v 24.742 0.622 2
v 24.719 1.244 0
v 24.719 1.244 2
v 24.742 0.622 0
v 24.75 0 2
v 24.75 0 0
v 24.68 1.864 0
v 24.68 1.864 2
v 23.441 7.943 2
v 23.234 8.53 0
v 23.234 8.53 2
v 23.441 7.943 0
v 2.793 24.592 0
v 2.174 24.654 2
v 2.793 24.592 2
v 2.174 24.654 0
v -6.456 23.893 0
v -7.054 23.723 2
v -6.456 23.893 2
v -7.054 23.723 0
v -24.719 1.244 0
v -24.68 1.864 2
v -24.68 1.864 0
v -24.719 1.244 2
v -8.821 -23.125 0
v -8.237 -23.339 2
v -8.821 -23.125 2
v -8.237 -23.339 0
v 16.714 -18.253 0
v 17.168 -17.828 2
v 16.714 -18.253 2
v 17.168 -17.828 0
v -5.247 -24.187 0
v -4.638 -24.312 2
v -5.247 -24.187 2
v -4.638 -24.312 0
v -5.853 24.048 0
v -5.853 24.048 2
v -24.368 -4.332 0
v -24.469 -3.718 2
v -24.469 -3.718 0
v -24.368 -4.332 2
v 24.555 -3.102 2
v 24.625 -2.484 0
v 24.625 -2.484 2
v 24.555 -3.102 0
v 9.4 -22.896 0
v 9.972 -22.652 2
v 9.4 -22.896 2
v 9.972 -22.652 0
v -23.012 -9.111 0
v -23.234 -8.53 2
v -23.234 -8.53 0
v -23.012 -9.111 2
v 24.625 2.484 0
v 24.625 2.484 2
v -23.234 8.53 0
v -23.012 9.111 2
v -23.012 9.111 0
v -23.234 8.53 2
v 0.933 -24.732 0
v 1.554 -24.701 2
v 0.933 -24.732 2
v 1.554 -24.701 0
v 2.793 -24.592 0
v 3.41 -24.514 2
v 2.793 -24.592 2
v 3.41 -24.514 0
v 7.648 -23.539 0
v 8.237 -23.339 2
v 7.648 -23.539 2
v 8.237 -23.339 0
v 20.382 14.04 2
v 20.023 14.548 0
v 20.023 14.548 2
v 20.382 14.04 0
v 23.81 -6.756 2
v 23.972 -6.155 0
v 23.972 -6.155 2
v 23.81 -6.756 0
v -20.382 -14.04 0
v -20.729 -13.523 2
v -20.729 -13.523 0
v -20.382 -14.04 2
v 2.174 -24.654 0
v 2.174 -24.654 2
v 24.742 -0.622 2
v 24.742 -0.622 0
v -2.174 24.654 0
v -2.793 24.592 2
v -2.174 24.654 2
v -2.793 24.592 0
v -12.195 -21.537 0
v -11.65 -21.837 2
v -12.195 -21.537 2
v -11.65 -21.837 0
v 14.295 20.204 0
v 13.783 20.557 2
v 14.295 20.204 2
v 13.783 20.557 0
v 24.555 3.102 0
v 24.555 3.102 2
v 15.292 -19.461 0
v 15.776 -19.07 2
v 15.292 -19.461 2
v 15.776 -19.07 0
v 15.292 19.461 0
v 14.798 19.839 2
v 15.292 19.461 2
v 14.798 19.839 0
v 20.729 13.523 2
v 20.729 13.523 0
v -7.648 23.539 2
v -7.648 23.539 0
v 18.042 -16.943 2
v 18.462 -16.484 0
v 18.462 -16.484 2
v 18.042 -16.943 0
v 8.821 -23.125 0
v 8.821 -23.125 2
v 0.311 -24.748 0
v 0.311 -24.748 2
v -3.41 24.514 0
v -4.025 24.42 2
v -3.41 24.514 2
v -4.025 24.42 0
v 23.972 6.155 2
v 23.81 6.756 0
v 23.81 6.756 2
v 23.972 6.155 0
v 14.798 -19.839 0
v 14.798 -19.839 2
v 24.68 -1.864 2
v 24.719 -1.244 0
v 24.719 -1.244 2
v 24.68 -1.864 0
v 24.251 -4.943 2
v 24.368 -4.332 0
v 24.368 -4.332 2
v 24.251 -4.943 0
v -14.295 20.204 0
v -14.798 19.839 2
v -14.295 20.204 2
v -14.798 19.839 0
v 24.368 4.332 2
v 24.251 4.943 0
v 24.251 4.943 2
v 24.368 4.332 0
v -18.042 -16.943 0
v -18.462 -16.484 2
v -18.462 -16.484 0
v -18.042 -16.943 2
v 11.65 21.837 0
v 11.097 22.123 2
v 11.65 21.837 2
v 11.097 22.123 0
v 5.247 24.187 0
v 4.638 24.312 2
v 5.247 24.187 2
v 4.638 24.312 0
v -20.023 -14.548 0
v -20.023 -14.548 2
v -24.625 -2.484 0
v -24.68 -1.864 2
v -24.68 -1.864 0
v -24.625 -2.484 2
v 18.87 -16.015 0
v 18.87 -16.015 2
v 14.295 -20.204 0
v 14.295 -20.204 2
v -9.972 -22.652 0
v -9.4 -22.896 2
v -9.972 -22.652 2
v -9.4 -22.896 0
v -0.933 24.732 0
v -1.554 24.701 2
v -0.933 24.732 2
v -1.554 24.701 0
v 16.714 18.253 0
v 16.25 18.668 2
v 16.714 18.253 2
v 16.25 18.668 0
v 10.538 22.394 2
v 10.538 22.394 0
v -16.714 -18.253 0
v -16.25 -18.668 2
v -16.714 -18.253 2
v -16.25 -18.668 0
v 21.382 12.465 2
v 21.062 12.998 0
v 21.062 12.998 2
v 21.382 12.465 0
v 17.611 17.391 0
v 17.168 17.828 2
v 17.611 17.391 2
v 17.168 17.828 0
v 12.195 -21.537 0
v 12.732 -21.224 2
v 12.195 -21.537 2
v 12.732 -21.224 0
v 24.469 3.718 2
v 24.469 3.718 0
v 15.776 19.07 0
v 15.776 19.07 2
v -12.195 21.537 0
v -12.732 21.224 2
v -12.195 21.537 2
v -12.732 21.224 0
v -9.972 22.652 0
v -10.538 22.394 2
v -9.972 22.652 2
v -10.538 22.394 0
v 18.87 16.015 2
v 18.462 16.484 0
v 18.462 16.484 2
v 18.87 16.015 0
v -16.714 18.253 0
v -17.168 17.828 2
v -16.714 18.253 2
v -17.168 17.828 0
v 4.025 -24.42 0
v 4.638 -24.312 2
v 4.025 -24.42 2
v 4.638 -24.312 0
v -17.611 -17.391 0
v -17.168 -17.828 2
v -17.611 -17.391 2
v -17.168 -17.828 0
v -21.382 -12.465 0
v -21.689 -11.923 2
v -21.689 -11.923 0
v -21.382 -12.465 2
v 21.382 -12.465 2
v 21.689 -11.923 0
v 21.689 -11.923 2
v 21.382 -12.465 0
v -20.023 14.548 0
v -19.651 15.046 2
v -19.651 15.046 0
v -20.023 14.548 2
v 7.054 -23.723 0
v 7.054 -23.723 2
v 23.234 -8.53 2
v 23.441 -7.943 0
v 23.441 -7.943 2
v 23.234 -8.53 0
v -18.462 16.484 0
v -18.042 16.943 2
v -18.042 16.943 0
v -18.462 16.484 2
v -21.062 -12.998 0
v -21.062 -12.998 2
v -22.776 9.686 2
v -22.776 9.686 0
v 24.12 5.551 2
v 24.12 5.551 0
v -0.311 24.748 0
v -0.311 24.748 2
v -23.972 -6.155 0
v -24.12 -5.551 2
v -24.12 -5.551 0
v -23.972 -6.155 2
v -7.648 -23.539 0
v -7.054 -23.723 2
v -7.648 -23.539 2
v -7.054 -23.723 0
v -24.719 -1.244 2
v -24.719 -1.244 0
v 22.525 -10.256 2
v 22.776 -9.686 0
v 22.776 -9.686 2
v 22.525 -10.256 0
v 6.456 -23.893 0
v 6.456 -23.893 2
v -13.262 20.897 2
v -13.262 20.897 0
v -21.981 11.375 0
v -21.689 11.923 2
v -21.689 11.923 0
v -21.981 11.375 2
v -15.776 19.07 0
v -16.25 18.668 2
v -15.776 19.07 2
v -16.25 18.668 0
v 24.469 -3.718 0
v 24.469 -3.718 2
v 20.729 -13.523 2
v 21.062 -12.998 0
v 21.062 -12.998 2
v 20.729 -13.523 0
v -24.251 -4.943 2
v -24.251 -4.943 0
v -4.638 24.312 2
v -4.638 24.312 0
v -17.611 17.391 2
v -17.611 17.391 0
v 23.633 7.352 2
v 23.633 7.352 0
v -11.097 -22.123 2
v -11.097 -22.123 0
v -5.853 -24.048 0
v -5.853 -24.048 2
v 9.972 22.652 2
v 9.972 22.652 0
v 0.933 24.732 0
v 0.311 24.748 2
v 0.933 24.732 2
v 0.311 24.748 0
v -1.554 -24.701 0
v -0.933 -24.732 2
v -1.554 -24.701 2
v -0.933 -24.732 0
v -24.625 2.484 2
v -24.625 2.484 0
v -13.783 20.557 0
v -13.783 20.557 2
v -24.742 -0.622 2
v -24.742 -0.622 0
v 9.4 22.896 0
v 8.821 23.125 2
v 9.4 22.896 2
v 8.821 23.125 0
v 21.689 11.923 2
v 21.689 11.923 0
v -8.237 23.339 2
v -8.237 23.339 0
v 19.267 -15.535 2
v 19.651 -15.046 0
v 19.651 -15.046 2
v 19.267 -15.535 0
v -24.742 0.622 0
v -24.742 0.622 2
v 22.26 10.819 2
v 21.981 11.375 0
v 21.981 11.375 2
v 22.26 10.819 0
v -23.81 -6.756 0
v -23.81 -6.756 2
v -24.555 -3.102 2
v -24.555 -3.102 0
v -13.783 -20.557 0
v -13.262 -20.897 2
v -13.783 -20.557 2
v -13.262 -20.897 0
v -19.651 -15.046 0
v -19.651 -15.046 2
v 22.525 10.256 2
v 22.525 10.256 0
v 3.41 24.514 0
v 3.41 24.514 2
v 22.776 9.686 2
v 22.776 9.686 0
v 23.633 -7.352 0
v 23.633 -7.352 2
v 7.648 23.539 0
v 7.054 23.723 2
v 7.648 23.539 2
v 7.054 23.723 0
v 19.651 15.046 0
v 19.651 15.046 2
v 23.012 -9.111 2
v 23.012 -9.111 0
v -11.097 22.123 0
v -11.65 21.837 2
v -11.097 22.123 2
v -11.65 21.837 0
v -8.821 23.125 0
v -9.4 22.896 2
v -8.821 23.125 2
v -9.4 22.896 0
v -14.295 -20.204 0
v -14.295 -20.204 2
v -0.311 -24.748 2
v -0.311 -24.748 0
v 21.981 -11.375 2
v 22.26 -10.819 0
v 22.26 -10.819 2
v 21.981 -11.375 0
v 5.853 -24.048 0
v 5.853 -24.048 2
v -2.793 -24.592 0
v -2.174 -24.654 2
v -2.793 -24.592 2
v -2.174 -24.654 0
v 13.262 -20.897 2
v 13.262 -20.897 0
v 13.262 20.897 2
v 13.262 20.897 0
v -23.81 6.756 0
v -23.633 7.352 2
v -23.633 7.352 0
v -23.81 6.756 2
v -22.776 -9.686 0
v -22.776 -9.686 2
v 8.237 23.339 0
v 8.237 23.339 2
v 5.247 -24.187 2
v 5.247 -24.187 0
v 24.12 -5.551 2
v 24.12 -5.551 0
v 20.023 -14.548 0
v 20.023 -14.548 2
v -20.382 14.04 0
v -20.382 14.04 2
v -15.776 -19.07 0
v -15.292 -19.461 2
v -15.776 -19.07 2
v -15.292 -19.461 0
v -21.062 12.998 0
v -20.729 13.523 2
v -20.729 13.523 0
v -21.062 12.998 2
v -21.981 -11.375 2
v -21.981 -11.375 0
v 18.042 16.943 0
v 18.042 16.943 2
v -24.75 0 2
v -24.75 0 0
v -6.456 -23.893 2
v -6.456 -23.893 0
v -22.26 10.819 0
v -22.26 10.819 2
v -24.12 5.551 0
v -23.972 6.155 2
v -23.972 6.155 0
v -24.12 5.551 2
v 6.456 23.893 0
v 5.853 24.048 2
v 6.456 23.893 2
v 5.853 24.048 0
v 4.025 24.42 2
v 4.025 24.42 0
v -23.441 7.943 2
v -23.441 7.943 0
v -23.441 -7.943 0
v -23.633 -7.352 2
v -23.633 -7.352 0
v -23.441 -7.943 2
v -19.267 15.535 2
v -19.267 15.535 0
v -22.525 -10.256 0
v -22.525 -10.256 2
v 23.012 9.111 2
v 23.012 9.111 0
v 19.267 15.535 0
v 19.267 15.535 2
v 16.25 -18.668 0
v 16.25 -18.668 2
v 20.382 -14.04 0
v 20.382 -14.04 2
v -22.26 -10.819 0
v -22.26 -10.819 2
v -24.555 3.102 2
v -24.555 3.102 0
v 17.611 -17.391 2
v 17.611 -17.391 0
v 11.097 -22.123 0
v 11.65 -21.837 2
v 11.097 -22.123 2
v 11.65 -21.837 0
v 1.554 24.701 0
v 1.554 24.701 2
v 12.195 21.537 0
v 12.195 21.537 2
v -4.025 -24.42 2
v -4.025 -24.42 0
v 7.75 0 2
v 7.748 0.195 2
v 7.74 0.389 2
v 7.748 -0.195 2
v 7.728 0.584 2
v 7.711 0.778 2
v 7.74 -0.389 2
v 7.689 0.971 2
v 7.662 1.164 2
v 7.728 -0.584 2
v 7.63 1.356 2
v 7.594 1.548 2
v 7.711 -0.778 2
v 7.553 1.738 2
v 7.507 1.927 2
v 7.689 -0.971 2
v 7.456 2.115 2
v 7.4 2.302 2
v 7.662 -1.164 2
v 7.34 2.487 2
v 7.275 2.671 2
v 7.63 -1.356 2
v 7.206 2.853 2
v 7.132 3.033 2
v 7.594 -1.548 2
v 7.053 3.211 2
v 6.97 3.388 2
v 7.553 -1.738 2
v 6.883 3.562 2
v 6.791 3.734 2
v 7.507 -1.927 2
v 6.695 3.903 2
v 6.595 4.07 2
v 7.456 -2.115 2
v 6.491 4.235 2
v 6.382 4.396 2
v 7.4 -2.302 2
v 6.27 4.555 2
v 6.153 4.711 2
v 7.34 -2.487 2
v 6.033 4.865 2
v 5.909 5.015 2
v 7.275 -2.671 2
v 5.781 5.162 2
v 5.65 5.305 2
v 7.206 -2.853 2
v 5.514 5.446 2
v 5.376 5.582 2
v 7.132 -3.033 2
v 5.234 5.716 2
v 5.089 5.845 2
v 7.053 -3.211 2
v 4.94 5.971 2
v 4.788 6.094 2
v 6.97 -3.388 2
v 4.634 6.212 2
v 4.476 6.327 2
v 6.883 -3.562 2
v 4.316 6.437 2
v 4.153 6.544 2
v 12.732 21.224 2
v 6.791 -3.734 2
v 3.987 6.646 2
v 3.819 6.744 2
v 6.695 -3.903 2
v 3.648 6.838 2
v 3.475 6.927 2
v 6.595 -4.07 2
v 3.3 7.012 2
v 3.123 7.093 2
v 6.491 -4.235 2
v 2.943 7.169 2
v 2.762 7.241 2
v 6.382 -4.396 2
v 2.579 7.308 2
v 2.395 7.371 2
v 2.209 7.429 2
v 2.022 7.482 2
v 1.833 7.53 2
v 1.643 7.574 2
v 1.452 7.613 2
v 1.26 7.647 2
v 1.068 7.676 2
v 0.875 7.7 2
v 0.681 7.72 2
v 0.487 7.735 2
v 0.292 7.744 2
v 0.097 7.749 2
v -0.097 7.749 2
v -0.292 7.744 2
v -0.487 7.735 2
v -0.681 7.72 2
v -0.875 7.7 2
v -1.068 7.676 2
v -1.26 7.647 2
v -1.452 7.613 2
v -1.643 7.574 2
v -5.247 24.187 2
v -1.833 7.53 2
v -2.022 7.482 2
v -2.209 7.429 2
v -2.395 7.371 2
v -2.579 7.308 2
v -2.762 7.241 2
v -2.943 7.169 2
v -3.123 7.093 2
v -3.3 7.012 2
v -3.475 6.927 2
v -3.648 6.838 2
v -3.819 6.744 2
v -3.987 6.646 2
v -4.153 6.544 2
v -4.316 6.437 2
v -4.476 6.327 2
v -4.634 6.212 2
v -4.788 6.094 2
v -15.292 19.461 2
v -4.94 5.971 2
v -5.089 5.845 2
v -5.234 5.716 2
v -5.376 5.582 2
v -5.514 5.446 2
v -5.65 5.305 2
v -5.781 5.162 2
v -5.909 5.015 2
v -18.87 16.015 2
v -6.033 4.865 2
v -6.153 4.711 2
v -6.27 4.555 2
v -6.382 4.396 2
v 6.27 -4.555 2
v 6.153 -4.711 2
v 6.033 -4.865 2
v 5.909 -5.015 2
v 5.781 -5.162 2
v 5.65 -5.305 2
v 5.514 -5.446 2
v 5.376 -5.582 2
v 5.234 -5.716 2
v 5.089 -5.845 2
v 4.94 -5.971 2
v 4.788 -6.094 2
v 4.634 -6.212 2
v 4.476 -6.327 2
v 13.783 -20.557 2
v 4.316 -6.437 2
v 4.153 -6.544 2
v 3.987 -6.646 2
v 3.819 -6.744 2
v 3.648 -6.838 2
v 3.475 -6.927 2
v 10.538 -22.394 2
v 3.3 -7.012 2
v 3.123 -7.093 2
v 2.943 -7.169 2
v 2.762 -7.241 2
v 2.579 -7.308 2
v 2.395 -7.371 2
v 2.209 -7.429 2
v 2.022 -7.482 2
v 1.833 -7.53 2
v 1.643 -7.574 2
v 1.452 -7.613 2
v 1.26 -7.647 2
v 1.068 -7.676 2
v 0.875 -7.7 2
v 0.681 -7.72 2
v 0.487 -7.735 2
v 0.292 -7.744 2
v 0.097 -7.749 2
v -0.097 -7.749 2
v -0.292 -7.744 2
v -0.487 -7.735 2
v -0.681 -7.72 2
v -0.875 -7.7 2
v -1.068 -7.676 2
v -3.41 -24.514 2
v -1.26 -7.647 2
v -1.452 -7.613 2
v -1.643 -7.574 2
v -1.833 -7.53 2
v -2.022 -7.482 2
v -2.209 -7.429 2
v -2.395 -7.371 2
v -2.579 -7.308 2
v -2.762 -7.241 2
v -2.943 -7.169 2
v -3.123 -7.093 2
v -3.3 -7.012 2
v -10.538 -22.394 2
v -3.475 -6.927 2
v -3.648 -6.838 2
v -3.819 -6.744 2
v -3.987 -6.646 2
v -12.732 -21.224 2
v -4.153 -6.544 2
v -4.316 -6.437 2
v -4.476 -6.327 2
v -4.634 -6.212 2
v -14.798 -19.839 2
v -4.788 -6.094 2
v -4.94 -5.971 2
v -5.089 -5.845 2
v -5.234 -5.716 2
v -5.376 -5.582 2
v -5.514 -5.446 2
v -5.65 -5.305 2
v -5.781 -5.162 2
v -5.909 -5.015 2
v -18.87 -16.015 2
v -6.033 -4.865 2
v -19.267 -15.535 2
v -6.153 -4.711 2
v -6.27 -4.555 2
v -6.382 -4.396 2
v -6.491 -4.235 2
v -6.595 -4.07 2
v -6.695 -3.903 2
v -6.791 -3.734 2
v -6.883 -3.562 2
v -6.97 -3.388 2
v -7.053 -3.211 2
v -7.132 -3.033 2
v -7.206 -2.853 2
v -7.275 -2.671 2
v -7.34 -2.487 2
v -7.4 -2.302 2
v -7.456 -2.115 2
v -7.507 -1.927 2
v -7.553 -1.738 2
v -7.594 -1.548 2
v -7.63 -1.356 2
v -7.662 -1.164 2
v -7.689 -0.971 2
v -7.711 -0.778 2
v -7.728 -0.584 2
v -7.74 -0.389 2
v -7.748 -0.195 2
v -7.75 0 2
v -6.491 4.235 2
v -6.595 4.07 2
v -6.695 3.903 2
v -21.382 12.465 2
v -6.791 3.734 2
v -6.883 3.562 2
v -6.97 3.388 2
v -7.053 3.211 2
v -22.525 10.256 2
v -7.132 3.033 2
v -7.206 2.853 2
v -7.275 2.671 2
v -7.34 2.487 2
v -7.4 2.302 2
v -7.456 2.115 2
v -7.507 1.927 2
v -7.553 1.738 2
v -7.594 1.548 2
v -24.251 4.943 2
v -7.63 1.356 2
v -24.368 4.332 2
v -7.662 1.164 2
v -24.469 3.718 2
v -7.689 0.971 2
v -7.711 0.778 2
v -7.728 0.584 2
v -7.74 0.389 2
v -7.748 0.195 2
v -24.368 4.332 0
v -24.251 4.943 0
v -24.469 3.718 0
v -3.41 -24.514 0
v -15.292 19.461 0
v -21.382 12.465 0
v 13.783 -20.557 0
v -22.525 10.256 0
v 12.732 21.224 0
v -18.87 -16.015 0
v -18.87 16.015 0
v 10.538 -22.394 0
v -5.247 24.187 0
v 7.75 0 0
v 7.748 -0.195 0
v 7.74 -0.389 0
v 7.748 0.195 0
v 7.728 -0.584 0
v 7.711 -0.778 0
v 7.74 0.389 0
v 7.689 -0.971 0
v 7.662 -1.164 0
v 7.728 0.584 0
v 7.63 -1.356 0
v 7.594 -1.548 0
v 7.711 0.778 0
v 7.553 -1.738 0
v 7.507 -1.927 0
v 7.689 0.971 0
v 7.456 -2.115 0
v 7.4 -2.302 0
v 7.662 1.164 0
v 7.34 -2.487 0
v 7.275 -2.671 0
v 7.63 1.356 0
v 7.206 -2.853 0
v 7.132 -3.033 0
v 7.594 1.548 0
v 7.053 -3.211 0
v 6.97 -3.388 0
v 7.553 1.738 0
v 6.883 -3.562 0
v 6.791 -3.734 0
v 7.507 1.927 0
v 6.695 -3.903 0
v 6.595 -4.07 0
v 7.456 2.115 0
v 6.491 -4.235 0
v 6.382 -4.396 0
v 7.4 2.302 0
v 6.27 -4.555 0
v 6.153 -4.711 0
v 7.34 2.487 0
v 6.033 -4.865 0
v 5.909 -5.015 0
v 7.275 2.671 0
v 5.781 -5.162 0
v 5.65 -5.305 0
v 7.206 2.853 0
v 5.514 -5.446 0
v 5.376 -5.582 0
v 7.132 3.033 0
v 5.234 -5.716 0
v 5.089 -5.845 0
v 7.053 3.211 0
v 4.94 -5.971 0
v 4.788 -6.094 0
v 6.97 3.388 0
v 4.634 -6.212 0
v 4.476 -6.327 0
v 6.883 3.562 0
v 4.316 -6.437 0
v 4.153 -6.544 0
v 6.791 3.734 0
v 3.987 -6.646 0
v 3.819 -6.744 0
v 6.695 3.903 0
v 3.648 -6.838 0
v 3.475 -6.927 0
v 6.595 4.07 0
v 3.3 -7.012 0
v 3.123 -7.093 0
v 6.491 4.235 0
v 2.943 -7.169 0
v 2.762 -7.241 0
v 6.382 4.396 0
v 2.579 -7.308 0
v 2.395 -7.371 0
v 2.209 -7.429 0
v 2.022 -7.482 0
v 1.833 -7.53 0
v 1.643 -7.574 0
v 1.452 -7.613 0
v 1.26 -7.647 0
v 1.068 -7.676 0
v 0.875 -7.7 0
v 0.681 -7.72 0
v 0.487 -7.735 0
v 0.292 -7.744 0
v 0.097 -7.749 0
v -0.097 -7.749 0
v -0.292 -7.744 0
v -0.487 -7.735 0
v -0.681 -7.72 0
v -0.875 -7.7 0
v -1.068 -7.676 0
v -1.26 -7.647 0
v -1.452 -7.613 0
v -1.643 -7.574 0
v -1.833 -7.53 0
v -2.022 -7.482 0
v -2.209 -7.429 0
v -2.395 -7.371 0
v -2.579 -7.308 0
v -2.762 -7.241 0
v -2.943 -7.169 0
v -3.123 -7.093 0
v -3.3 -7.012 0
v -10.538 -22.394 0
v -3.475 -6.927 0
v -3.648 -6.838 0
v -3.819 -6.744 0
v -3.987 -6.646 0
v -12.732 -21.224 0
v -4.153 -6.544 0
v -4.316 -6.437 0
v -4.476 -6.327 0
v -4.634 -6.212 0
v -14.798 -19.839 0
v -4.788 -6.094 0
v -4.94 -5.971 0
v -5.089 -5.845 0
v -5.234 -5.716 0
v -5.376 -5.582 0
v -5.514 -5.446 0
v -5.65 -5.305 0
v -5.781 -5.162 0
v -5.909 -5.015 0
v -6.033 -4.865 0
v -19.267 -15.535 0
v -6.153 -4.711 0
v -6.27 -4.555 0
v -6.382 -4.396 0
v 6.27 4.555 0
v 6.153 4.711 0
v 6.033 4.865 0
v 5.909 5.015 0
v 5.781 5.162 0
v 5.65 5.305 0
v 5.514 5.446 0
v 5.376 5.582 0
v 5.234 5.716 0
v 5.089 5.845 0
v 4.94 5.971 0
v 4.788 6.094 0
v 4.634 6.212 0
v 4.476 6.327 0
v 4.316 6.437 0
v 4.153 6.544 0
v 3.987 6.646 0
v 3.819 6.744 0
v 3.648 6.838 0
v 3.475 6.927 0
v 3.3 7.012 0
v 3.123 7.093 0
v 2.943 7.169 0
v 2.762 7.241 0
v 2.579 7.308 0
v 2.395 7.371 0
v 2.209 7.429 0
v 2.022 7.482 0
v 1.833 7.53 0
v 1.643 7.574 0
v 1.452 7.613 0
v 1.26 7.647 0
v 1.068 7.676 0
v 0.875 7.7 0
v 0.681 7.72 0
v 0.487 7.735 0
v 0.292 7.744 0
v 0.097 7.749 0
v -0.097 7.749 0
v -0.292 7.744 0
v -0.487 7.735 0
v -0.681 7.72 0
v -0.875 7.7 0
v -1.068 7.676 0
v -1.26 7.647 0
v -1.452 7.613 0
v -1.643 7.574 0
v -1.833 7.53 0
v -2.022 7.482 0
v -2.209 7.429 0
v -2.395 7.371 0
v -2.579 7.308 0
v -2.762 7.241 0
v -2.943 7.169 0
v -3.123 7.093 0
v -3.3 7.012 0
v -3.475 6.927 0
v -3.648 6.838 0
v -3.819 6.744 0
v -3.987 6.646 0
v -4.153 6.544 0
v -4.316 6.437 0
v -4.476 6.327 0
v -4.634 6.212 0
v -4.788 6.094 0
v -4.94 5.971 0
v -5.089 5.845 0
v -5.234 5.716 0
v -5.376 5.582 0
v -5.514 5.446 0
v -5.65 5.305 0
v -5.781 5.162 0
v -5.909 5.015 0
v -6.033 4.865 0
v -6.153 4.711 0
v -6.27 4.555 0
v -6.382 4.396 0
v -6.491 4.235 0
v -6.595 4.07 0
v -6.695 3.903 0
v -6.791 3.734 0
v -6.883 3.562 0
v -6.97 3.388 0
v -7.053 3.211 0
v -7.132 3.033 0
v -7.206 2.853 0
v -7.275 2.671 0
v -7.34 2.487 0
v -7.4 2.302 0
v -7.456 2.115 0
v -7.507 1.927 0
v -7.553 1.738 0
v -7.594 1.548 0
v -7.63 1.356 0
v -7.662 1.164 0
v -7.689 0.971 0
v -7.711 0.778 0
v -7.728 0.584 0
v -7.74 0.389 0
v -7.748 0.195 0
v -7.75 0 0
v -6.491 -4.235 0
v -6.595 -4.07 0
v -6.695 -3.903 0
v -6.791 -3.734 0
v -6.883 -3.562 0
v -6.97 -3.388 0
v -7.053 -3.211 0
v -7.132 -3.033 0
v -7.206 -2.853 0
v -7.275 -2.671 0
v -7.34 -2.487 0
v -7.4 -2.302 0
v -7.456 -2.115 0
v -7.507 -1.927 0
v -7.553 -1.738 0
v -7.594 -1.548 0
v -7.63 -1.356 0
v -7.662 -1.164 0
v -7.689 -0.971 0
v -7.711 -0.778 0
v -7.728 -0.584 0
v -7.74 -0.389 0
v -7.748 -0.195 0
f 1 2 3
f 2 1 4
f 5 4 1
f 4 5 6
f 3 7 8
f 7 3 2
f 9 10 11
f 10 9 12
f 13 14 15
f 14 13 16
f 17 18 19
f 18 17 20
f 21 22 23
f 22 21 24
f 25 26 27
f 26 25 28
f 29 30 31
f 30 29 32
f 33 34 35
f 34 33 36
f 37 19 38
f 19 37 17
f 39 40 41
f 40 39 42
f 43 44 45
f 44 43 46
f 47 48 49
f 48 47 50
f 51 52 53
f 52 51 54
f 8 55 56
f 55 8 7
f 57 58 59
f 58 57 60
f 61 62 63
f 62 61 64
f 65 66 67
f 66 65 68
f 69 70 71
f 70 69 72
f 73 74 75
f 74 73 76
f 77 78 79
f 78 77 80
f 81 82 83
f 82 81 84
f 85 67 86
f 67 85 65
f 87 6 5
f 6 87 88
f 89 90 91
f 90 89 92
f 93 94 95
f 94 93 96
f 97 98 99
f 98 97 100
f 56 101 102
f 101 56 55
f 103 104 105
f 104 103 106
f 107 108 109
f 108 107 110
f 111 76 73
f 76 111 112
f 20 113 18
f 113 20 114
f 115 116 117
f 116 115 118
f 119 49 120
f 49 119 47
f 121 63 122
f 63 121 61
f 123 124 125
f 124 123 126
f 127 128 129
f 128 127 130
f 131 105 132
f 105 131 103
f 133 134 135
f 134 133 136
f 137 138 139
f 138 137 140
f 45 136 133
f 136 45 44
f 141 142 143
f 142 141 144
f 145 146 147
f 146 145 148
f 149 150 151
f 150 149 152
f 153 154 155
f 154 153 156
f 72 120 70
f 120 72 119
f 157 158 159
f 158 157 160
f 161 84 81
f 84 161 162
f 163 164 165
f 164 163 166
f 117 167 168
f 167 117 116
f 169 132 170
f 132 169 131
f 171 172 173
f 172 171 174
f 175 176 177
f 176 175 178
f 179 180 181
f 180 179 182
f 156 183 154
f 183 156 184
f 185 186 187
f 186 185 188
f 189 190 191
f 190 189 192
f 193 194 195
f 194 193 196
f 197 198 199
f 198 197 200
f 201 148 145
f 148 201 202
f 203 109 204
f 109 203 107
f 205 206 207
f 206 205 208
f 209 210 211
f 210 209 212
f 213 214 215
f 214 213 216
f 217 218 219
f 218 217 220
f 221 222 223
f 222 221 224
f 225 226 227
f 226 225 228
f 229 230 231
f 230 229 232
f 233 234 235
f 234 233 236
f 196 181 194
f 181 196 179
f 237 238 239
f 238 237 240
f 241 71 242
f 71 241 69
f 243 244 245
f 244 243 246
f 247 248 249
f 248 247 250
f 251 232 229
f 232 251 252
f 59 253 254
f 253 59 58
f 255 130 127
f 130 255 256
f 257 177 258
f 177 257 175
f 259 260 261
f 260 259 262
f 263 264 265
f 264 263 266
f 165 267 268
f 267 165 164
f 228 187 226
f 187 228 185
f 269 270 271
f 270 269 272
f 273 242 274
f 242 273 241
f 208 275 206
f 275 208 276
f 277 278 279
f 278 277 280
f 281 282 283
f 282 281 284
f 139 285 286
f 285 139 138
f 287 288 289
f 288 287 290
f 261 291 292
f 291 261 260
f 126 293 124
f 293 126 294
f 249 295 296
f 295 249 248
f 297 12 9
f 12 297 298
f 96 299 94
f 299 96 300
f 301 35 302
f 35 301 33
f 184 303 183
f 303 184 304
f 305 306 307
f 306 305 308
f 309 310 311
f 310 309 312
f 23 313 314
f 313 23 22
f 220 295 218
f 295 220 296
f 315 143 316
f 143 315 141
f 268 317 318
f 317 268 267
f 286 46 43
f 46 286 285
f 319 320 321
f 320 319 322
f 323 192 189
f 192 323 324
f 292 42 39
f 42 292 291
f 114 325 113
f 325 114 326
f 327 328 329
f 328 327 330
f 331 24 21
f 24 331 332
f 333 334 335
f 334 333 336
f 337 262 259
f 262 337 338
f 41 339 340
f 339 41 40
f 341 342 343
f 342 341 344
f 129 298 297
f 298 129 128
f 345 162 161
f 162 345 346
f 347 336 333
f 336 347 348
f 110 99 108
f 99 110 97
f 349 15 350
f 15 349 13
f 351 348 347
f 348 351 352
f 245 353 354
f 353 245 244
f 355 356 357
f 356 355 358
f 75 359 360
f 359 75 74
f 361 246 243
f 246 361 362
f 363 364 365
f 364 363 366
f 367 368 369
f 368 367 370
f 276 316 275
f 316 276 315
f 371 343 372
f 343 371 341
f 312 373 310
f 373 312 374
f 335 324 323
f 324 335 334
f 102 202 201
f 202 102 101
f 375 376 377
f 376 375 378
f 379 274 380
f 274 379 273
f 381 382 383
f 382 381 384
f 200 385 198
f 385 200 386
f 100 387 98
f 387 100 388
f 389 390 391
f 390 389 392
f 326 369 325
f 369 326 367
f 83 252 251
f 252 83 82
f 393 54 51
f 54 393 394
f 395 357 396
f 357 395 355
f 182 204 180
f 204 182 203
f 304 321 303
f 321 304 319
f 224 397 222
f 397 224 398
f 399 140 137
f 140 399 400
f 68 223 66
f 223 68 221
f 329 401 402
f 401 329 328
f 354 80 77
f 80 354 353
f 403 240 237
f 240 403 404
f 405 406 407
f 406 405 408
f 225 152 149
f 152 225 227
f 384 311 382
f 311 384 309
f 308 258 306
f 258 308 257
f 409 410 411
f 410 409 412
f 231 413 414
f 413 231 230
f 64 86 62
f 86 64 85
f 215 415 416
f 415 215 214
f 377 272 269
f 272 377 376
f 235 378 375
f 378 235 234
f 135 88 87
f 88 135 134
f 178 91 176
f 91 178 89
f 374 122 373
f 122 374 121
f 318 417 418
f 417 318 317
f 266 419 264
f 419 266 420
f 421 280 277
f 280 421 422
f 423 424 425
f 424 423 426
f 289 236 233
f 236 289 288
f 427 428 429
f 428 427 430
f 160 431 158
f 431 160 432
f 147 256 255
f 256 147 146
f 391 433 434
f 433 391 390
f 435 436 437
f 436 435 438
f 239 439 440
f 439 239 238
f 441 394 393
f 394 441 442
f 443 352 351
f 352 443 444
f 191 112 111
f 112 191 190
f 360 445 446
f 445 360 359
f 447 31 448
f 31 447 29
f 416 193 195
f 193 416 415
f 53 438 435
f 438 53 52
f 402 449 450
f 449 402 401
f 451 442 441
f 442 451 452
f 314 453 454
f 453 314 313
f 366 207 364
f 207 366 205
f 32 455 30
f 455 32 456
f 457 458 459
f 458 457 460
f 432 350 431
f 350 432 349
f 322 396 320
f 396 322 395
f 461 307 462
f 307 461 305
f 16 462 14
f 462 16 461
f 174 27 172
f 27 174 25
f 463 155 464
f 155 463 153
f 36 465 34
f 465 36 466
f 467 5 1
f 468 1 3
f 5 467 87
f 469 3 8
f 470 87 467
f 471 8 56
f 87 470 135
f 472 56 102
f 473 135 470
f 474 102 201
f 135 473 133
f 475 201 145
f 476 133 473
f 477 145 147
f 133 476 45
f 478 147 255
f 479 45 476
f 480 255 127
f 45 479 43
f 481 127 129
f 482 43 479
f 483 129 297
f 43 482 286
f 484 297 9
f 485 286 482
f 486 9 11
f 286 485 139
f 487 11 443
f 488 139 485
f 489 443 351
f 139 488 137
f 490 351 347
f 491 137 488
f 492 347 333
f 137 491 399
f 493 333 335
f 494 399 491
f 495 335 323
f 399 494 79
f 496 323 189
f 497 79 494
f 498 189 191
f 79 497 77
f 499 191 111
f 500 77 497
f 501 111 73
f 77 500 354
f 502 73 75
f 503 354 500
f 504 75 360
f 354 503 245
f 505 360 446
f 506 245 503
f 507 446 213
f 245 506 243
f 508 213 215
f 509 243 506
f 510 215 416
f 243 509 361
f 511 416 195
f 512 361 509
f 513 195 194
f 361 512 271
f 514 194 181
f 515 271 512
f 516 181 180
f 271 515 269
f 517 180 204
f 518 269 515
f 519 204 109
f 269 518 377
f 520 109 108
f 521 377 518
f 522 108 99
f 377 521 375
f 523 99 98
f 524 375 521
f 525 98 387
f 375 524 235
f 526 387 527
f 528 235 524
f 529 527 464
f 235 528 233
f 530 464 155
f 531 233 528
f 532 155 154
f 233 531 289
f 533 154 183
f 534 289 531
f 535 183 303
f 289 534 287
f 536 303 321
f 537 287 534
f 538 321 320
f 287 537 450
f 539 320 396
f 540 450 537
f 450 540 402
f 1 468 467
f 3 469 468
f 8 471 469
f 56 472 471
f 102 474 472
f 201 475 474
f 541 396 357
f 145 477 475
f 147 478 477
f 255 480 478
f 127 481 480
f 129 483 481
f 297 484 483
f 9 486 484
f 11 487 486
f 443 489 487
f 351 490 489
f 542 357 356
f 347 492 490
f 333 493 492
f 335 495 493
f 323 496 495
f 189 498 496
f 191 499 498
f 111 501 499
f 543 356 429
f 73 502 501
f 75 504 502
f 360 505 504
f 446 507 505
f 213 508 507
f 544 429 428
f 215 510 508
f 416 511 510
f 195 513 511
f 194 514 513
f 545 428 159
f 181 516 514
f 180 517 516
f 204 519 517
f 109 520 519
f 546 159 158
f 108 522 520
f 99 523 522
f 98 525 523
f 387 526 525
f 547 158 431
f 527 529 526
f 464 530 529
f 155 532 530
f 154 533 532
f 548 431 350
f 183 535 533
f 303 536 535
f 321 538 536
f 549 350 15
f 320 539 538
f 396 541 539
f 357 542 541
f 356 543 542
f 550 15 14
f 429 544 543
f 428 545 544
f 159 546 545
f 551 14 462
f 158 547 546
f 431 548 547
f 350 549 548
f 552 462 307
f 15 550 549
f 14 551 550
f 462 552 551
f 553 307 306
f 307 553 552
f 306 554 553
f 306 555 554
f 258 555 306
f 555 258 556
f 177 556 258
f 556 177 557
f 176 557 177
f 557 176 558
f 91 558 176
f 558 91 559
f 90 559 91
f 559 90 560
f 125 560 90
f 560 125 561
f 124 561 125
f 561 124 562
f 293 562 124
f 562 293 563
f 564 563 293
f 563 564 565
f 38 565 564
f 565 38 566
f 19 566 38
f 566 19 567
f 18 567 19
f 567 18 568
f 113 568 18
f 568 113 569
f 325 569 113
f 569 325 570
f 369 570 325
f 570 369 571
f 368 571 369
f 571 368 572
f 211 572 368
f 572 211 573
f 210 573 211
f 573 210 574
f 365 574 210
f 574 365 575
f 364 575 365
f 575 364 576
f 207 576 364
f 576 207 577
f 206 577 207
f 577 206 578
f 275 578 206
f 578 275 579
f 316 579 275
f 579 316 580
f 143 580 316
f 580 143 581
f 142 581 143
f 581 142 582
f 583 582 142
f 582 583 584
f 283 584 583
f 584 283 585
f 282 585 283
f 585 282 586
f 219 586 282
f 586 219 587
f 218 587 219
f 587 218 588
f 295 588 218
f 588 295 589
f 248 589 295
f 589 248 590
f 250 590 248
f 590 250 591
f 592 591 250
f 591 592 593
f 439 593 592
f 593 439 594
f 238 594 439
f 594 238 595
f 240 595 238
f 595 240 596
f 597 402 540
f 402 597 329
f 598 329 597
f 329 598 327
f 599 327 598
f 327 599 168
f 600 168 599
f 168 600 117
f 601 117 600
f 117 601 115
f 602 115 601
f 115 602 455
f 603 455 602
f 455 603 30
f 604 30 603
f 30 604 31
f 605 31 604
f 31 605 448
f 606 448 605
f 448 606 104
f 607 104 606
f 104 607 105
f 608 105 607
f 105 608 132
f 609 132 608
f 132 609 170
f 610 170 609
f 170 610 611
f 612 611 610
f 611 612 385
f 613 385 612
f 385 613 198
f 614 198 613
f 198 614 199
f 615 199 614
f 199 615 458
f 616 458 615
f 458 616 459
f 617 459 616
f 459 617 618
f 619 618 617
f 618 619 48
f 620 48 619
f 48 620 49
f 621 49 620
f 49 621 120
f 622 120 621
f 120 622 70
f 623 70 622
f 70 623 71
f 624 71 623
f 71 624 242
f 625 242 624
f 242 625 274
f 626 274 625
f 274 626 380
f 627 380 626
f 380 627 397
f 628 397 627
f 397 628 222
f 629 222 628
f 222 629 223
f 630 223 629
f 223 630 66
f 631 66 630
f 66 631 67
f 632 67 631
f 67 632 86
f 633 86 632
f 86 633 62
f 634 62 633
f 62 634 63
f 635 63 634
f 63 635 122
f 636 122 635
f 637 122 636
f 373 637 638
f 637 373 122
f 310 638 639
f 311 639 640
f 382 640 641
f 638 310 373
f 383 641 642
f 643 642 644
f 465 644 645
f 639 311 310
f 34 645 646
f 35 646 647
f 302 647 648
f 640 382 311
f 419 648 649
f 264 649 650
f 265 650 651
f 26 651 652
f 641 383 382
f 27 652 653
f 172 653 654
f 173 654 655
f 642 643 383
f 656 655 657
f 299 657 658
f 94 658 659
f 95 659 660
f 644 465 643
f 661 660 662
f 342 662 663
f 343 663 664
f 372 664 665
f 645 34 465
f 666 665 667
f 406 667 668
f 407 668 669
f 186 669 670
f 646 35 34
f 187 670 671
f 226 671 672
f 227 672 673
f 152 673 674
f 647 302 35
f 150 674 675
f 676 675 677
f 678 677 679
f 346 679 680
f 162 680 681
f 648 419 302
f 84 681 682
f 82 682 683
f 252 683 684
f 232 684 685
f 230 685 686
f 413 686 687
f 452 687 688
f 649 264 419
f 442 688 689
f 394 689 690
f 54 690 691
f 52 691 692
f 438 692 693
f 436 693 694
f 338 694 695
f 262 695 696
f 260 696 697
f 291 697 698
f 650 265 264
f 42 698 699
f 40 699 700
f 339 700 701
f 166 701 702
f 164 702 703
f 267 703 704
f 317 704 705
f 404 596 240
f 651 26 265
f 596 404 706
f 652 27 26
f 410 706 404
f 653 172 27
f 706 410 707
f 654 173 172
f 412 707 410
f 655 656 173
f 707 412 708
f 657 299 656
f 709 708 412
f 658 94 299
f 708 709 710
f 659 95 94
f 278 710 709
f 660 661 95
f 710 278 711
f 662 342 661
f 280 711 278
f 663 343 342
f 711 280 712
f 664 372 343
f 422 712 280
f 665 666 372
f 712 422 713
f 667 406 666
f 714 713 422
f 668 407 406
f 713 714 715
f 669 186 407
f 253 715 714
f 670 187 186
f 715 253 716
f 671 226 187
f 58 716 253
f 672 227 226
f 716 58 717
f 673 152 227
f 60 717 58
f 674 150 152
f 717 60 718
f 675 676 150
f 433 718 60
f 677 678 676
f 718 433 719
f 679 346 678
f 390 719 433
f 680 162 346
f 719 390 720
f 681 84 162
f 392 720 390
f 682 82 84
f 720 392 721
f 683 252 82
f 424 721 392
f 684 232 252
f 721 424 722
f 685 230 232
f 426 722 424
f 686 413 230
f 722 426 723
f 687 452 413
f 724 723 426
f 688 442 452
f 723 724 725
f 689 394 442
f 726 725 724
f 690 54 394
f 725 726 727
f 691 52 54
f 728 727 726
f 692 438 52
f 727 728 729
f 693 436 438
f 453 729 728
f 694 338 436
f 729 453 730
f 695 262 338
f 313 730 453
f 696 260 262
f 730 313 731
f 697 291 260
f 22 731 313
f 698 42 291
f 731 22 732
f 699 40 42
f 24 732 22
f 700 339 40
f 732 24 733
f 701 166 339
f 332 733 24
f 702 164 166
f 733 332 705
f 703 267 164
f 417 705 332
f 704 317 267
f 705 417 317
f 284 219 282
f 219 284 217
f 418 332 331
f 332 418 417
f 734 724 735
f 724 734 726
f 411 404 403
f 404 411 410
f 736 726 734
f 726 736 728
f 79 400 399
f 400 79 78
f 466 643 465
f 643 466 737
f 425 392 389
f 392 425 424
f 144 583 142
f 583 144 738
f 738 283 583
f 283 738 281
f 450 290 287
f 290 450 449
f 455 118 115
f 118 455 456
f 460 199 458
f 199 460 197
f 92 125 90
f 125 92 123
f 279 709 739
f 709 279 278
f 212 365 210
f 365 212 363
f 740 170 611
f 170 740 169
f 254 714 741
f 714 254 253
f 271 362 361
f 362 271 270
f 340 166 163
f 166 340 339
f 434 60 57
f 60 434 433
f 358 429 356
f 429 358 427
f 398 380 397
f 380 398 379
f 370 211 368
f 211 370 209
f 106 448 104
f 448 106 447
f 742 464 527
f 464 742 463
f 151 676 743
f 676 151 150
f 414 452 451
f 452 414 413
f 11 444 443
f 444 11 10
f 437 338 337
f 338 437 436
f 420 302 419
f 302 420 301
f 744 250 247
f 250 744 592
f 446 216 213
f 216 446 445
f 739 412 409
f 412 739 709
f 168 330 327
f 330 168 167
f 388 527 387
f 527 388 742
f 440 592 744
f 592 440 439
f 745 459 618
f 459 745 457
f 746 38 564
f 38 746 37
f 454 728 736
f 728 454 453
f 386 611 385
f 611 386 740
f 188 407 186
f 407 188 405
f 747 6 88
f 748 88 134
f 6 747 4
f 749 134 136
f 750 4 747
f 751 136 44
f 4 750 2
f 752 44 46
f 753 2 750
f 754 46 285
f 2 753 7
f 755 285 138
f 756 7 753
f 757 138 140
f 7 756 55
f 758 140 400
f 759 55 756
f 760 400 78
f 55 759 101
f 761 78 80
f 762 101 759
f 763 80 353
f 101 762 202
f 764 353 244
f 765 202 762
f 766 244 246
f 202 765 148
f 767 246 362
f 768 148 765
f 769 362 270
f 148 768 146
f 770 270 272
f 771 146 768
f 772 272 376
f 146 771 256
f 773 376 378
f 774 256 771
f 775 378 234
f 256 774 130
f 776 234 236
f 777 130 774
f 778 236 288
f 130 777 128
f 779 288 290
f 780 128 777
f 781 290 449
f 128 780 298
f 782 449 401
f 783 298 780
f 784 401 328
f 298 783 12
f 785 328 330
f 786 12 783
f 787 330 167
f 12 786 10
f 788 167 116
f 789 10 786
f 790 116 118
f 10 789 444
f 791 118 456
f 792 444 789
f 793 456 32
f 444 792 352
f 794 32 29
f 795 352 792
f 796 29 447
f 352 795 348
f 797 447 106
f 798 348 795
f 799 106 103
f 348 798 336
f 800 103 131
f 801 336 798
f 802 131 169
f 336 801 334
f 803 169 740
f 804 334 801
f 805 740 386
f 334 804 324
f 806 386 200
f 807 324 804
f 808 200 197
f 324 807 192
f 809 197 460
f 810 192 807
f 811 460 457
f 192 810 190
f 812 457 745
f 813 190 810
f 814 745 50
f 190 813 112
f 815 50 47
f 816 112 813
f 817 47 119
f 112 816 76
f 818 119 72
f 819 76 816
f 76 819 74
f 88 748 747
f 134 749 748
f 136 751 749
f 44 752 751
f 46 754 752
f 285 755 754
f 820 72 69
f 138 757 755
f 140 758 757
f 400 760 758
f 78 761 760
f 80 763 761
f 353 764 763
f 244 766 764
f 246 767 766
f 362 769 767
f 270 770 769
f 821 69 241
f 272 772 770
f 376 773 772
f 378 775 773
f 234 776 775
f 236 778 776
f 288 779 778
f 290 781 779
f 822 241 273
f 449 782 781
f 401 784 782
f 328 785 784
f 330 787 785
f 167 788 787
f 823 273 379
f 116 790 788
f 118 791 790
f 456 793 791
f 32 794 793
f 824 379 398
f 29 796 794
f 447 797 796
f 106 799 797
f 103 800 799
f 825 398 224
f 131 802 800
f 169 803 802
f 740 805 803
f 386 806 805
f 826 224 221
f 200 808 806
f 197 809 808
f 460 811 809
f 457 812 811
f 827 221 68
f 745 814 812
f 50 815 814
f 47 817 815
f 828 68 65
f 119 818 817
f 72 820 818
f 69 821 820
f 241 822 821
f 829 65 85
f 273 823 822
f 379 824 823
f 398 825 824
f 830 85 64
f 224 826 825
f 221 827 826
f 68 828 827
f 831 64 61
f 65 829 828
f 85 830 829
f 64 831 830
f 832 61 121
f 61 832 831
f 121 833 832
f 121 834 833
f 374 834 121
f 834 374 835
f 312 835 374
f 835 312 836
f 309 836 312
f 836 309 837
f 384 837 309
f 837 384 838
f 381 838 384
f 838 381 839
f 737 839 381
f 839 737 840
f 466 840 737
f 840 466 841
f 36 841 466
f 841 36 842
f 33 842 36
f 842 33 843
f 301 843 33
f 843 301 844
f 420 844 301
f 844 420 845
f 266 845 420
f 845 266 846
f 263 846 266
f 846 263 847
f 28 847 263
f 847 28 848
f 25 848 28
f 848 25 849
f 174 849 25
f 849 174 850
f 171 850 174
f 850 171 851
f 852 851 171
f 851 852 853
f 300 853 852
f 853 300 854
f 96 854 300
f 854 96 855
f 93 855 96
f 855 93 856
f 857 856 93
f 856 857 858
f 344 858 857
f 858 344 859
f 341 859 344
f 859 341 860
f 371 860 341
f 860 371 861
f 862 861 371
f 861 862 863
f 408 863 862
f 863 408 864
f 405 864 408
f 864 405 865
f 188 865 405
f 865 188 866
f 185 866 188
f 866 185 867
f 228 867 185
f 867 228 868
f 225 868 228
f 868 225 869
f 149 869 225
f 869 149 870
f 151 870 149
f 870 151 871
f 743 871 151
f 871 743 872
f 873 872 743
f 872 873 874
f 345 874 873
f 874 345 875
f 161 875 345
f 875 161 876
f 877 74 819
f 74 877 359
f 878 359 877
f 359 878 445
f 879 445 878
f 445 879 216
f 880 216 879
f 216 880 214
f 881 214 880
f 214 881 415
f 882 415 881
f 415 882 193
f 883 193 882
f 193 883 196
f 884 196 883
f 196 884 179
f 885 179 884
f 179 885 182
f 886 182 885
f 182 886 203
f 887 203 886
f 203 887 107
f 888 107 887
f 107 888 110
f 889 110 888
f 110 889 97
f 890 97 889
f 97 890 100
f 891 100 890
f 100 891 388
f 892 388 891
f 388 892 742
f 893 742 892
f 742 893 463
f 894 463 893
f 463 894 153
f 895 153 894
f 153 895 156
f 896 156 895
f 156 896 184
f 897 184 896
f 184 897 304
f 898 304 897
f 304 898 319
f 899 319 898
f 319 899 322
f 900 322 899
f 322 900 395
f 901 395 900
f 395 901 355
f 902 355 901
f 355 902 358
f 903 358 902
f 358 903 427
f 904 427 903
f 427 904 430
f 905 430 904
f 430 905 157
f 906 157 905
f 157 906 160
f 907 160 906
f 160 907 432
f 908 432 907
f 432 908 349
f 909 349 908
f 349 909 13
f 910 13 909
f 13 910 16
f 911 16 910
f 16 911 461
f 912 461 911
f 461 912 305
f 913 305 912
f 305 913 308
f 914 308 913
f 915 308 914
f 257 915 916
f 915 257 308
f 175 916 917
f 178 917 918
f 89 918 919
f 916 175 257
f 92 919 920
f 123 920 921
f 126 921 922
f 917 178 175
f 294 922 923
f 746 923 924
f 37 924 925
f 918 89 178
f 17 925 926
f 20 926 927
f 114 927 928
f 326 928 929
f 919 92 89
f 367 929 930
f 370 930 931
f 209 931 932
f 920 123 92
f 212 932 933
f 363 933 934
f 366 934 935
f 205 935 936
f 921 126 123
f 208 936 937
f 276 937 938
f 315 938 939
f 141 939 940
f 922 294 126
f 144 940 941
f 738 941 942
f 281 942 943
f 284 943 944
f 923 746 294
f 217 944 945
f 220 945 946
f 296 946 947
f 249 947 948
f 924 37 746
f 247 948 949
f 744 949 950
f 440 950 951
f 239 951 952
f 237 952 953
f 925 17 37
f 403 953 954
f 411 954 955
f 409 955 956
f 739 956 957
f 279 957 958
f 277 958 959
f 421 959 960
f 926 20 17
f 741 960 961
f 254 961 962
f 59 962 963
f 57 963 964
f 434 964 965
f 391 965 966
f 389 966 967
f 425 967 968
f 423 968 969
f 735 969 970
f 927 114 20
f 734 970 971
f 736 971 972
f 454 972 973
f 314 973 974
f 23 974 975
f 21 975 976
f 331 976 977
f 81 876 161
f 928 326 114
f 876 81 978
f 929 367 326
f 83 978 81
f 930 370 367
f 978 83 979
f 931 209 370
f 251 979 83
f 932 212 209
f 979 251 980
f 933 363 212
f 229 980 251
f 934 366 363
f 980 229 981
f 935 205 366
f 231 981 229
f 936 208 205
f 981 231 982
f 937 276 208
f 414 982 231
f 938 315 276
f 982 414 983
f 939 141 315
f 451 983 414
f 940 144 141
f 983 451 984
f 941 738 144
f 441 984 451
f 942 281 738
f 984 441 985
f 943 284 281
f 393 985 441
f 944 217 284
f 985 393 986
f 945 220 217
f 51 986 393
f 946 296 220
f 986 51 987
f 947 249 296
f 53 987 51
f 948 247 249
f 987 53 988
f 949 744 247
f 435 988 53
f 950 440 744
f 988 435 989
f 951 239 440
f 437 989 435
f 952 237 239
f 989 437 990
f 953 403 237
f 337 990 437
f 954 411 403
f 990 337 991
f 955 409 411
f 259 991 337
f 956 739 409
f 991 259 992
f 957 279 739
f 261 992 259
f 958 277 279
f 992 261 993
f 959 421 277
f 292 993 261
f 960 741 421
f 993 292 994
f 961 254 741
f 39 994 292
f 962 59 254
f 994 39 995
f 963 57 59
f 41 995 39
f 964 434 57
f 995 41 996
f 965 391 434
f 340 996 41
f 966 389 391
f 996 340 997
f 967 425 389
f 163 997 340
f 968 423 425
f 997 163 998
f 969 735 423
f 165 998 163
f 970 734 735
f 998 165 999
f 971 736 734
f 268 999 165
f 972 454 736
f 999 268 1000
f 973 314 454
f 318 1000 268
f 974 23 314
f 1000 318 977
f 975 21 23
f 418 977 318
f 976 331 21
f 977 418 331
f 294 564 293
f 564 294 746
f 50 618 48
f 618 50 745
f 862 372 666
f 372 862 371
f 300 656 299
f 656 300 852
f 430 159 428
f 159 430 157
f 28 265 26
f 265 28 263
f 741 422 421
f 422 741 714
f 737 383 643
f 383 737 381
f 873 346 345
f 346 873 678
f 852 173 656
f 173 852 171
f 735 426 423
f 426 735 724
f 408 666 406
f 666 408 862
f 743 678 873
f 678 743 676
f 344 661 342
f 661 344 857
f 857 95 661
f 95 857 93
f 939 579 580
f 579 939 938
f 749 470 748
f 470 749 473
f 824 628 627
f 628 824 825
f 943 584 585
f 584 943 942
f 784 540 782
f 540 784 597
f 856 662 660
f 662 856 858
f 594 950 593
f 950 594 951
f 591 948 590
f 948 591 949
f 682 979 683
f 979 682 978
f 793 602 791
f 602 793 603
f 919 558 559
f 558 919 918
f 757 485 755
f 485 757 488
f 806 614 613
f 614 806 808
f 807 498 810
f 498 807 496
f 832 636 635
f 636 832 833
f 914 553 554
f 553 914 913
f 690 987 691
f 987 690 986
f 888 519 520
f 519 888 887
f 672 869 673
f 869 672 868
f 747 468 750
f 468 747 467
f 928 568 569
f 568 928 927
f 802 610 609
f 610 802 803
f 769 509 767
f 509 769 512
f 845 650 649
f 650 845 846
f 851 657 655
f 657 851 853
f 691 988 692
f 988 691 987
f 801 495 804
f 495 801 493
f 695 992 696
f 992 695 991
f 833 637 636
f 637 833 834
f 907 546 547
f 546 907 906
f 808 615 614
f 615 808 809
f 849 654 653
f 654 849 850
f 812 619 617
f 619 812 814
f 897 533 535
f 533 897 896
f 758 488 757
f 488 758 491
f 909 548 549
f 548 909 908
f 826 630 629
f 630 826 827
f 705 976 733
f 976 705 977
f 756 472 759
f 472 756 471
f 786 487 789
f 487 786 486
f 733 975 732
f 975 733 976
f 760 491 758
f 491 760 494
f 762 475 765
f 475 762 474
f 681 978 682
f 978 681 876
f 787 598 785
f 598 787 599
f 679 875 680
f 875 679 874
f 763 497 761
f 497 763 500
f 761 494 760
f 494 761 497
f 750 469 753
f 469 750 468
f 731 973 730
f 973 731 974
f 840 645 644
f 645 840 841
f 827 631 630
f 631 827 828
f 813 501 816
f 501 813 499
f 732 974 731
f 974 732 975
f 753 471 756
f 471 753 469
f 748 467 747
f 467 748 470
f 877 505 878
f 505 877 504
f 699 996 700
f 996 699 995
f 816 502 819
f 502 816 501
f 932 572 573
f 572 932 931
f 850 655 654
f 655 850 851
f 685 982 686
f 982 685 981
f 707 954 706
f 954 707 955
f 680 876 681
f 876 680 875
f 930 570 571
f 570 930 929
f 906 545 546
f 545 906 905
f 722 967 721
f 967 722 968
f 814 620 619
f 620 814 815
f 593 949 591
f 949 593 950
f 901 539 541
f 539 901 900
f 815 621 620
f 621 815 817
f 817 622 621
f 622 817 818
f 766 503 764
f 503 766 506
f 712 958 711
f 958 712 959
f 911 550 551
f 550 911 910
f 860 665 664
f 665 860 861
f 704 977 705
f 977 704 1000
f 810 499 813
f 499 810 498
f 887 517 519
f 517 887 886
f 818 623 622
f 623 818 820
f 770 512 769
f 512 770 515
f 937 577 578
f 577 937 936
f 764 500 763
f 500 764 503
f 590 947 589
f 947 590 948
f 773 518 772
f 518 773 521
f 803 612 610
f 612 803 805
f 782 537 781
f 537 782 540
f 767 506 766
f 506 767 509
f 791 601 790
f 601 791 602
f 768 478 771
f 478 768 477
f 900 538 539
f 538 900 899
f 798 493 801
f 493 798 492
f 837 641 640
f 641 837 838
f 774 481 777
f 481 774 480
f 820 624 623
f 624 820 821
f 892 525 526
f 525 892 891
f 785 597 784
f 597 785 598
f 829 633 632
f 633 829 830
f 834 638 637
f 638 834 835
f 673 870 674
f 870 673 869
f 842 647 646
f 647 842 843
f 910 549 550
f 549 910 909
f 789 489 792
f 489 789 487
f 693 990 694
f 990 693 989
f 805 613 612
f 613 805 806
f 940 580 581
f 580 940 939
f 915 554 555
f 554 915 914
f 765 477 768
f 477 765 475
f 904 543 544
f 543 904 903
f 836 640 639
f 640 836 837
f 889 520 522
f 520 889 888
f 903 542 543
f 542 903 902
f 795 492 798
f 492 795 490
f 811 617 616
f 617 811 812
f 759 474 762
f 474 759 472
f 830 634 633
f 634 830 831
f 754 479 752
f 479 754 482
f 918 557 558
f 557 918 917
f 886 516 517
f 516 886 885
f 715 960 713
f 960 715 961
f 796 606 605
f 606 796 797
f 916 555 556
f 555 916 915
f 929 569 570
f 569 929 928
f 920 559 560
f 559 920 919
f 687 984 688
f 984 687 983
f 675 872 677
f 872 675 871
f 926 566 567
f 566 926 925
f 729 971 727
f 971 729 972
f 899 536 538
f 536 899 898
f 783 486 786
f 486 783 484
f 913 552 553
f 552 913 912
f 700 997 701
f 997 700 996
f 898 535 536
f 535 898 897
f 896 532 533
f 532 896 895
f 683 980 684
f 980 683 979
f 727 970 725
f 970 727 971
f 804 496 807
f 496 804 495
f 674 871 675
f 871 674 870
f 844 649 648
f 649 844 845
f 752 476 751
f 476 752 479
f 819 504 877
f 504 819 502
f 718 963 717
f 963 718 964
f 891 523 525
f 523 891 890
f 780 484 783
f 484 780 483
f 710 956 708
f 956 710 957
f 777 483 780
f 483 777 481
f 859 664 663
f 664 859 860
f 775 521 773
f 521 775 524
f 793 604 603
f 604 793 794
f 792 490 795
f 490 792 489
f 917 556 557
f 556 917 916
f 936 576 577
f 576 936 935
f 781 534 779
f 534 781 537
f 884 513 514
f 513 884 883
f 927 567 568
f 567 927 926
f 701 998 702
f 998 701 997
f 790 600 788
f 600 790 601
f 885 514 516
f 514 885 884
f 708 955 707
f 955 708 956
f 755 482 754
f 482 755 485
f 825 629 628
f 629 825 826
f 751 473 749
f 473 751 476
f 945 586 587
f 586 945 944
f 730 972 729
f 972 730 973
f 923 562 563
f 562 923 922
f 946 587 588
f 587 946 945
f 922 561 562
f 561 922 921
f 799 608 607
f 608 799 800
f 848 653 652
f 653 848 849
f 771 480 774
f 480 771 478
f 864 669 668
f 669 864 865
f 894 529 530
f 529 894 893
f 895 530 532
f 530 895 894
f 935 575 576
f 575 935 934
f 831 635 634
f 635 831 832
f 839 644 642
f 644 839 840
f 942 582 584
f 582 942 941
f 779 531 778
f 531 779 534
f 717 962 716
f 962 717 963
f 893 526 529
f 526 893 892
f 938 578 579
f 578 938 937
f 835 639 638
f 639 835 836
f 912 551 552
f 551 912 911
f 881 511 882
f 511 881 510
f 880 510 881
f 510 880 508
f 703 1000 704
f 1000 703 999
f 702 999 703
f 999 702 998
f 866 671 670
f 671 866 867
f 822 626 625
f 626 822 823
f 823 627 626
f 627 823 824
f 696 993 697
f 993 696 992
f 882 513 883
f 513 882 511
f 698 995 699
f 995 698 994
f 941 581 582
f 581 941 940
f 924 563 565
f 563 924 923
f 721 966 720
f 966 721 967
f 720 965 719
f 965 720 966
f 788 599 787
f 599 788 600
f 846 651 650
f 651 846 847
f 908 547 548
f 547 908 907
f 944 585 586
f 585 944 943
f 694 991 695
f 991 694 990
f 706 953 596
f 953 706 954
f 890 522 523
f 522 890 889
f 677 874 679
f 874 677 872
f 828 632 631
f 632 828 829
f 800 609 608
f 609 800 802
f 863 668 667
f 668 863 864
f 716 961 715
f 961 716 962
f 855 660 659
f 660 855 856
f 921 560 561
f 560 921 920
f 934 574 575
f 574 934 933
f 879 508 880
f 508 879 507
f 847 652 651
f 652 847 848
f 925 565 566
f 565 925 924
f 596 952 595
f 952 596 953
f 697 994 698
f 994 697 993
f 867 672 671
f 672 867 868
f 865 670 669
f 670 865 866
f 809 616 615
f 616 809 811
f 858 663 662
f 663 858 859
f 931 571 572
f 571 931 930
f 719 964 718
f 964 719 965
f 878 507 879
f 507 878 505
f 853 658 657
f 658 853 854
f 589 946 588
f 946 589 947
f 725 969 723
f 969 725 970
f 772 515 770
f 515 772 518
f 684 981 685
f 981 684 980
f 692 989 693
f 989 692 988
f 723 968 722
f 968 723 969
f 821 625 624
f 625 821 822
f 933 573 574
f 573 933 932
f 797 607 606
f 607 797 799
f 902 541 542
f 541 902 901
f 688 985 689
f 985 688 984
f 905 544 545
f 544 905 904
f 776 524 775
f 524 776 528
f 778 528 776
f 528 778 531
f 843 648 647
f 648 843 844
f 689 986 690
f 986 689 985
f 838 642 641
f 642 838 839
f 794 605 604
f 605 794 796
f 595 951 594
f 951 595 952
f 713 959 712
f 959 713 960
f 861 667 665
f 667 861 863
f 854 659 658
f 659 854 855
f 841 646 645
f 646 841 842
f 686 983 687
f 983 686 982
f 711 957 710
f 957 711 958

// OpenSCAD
inner_diam = 49.5;

hole_size = 15.5;

$fn = 250;


difference() {
    cylinder(h=2, r = inner_diam / 2);
    translate([0,0,-1])
    cylinder(h=4, r = hole_size / 2);
}
